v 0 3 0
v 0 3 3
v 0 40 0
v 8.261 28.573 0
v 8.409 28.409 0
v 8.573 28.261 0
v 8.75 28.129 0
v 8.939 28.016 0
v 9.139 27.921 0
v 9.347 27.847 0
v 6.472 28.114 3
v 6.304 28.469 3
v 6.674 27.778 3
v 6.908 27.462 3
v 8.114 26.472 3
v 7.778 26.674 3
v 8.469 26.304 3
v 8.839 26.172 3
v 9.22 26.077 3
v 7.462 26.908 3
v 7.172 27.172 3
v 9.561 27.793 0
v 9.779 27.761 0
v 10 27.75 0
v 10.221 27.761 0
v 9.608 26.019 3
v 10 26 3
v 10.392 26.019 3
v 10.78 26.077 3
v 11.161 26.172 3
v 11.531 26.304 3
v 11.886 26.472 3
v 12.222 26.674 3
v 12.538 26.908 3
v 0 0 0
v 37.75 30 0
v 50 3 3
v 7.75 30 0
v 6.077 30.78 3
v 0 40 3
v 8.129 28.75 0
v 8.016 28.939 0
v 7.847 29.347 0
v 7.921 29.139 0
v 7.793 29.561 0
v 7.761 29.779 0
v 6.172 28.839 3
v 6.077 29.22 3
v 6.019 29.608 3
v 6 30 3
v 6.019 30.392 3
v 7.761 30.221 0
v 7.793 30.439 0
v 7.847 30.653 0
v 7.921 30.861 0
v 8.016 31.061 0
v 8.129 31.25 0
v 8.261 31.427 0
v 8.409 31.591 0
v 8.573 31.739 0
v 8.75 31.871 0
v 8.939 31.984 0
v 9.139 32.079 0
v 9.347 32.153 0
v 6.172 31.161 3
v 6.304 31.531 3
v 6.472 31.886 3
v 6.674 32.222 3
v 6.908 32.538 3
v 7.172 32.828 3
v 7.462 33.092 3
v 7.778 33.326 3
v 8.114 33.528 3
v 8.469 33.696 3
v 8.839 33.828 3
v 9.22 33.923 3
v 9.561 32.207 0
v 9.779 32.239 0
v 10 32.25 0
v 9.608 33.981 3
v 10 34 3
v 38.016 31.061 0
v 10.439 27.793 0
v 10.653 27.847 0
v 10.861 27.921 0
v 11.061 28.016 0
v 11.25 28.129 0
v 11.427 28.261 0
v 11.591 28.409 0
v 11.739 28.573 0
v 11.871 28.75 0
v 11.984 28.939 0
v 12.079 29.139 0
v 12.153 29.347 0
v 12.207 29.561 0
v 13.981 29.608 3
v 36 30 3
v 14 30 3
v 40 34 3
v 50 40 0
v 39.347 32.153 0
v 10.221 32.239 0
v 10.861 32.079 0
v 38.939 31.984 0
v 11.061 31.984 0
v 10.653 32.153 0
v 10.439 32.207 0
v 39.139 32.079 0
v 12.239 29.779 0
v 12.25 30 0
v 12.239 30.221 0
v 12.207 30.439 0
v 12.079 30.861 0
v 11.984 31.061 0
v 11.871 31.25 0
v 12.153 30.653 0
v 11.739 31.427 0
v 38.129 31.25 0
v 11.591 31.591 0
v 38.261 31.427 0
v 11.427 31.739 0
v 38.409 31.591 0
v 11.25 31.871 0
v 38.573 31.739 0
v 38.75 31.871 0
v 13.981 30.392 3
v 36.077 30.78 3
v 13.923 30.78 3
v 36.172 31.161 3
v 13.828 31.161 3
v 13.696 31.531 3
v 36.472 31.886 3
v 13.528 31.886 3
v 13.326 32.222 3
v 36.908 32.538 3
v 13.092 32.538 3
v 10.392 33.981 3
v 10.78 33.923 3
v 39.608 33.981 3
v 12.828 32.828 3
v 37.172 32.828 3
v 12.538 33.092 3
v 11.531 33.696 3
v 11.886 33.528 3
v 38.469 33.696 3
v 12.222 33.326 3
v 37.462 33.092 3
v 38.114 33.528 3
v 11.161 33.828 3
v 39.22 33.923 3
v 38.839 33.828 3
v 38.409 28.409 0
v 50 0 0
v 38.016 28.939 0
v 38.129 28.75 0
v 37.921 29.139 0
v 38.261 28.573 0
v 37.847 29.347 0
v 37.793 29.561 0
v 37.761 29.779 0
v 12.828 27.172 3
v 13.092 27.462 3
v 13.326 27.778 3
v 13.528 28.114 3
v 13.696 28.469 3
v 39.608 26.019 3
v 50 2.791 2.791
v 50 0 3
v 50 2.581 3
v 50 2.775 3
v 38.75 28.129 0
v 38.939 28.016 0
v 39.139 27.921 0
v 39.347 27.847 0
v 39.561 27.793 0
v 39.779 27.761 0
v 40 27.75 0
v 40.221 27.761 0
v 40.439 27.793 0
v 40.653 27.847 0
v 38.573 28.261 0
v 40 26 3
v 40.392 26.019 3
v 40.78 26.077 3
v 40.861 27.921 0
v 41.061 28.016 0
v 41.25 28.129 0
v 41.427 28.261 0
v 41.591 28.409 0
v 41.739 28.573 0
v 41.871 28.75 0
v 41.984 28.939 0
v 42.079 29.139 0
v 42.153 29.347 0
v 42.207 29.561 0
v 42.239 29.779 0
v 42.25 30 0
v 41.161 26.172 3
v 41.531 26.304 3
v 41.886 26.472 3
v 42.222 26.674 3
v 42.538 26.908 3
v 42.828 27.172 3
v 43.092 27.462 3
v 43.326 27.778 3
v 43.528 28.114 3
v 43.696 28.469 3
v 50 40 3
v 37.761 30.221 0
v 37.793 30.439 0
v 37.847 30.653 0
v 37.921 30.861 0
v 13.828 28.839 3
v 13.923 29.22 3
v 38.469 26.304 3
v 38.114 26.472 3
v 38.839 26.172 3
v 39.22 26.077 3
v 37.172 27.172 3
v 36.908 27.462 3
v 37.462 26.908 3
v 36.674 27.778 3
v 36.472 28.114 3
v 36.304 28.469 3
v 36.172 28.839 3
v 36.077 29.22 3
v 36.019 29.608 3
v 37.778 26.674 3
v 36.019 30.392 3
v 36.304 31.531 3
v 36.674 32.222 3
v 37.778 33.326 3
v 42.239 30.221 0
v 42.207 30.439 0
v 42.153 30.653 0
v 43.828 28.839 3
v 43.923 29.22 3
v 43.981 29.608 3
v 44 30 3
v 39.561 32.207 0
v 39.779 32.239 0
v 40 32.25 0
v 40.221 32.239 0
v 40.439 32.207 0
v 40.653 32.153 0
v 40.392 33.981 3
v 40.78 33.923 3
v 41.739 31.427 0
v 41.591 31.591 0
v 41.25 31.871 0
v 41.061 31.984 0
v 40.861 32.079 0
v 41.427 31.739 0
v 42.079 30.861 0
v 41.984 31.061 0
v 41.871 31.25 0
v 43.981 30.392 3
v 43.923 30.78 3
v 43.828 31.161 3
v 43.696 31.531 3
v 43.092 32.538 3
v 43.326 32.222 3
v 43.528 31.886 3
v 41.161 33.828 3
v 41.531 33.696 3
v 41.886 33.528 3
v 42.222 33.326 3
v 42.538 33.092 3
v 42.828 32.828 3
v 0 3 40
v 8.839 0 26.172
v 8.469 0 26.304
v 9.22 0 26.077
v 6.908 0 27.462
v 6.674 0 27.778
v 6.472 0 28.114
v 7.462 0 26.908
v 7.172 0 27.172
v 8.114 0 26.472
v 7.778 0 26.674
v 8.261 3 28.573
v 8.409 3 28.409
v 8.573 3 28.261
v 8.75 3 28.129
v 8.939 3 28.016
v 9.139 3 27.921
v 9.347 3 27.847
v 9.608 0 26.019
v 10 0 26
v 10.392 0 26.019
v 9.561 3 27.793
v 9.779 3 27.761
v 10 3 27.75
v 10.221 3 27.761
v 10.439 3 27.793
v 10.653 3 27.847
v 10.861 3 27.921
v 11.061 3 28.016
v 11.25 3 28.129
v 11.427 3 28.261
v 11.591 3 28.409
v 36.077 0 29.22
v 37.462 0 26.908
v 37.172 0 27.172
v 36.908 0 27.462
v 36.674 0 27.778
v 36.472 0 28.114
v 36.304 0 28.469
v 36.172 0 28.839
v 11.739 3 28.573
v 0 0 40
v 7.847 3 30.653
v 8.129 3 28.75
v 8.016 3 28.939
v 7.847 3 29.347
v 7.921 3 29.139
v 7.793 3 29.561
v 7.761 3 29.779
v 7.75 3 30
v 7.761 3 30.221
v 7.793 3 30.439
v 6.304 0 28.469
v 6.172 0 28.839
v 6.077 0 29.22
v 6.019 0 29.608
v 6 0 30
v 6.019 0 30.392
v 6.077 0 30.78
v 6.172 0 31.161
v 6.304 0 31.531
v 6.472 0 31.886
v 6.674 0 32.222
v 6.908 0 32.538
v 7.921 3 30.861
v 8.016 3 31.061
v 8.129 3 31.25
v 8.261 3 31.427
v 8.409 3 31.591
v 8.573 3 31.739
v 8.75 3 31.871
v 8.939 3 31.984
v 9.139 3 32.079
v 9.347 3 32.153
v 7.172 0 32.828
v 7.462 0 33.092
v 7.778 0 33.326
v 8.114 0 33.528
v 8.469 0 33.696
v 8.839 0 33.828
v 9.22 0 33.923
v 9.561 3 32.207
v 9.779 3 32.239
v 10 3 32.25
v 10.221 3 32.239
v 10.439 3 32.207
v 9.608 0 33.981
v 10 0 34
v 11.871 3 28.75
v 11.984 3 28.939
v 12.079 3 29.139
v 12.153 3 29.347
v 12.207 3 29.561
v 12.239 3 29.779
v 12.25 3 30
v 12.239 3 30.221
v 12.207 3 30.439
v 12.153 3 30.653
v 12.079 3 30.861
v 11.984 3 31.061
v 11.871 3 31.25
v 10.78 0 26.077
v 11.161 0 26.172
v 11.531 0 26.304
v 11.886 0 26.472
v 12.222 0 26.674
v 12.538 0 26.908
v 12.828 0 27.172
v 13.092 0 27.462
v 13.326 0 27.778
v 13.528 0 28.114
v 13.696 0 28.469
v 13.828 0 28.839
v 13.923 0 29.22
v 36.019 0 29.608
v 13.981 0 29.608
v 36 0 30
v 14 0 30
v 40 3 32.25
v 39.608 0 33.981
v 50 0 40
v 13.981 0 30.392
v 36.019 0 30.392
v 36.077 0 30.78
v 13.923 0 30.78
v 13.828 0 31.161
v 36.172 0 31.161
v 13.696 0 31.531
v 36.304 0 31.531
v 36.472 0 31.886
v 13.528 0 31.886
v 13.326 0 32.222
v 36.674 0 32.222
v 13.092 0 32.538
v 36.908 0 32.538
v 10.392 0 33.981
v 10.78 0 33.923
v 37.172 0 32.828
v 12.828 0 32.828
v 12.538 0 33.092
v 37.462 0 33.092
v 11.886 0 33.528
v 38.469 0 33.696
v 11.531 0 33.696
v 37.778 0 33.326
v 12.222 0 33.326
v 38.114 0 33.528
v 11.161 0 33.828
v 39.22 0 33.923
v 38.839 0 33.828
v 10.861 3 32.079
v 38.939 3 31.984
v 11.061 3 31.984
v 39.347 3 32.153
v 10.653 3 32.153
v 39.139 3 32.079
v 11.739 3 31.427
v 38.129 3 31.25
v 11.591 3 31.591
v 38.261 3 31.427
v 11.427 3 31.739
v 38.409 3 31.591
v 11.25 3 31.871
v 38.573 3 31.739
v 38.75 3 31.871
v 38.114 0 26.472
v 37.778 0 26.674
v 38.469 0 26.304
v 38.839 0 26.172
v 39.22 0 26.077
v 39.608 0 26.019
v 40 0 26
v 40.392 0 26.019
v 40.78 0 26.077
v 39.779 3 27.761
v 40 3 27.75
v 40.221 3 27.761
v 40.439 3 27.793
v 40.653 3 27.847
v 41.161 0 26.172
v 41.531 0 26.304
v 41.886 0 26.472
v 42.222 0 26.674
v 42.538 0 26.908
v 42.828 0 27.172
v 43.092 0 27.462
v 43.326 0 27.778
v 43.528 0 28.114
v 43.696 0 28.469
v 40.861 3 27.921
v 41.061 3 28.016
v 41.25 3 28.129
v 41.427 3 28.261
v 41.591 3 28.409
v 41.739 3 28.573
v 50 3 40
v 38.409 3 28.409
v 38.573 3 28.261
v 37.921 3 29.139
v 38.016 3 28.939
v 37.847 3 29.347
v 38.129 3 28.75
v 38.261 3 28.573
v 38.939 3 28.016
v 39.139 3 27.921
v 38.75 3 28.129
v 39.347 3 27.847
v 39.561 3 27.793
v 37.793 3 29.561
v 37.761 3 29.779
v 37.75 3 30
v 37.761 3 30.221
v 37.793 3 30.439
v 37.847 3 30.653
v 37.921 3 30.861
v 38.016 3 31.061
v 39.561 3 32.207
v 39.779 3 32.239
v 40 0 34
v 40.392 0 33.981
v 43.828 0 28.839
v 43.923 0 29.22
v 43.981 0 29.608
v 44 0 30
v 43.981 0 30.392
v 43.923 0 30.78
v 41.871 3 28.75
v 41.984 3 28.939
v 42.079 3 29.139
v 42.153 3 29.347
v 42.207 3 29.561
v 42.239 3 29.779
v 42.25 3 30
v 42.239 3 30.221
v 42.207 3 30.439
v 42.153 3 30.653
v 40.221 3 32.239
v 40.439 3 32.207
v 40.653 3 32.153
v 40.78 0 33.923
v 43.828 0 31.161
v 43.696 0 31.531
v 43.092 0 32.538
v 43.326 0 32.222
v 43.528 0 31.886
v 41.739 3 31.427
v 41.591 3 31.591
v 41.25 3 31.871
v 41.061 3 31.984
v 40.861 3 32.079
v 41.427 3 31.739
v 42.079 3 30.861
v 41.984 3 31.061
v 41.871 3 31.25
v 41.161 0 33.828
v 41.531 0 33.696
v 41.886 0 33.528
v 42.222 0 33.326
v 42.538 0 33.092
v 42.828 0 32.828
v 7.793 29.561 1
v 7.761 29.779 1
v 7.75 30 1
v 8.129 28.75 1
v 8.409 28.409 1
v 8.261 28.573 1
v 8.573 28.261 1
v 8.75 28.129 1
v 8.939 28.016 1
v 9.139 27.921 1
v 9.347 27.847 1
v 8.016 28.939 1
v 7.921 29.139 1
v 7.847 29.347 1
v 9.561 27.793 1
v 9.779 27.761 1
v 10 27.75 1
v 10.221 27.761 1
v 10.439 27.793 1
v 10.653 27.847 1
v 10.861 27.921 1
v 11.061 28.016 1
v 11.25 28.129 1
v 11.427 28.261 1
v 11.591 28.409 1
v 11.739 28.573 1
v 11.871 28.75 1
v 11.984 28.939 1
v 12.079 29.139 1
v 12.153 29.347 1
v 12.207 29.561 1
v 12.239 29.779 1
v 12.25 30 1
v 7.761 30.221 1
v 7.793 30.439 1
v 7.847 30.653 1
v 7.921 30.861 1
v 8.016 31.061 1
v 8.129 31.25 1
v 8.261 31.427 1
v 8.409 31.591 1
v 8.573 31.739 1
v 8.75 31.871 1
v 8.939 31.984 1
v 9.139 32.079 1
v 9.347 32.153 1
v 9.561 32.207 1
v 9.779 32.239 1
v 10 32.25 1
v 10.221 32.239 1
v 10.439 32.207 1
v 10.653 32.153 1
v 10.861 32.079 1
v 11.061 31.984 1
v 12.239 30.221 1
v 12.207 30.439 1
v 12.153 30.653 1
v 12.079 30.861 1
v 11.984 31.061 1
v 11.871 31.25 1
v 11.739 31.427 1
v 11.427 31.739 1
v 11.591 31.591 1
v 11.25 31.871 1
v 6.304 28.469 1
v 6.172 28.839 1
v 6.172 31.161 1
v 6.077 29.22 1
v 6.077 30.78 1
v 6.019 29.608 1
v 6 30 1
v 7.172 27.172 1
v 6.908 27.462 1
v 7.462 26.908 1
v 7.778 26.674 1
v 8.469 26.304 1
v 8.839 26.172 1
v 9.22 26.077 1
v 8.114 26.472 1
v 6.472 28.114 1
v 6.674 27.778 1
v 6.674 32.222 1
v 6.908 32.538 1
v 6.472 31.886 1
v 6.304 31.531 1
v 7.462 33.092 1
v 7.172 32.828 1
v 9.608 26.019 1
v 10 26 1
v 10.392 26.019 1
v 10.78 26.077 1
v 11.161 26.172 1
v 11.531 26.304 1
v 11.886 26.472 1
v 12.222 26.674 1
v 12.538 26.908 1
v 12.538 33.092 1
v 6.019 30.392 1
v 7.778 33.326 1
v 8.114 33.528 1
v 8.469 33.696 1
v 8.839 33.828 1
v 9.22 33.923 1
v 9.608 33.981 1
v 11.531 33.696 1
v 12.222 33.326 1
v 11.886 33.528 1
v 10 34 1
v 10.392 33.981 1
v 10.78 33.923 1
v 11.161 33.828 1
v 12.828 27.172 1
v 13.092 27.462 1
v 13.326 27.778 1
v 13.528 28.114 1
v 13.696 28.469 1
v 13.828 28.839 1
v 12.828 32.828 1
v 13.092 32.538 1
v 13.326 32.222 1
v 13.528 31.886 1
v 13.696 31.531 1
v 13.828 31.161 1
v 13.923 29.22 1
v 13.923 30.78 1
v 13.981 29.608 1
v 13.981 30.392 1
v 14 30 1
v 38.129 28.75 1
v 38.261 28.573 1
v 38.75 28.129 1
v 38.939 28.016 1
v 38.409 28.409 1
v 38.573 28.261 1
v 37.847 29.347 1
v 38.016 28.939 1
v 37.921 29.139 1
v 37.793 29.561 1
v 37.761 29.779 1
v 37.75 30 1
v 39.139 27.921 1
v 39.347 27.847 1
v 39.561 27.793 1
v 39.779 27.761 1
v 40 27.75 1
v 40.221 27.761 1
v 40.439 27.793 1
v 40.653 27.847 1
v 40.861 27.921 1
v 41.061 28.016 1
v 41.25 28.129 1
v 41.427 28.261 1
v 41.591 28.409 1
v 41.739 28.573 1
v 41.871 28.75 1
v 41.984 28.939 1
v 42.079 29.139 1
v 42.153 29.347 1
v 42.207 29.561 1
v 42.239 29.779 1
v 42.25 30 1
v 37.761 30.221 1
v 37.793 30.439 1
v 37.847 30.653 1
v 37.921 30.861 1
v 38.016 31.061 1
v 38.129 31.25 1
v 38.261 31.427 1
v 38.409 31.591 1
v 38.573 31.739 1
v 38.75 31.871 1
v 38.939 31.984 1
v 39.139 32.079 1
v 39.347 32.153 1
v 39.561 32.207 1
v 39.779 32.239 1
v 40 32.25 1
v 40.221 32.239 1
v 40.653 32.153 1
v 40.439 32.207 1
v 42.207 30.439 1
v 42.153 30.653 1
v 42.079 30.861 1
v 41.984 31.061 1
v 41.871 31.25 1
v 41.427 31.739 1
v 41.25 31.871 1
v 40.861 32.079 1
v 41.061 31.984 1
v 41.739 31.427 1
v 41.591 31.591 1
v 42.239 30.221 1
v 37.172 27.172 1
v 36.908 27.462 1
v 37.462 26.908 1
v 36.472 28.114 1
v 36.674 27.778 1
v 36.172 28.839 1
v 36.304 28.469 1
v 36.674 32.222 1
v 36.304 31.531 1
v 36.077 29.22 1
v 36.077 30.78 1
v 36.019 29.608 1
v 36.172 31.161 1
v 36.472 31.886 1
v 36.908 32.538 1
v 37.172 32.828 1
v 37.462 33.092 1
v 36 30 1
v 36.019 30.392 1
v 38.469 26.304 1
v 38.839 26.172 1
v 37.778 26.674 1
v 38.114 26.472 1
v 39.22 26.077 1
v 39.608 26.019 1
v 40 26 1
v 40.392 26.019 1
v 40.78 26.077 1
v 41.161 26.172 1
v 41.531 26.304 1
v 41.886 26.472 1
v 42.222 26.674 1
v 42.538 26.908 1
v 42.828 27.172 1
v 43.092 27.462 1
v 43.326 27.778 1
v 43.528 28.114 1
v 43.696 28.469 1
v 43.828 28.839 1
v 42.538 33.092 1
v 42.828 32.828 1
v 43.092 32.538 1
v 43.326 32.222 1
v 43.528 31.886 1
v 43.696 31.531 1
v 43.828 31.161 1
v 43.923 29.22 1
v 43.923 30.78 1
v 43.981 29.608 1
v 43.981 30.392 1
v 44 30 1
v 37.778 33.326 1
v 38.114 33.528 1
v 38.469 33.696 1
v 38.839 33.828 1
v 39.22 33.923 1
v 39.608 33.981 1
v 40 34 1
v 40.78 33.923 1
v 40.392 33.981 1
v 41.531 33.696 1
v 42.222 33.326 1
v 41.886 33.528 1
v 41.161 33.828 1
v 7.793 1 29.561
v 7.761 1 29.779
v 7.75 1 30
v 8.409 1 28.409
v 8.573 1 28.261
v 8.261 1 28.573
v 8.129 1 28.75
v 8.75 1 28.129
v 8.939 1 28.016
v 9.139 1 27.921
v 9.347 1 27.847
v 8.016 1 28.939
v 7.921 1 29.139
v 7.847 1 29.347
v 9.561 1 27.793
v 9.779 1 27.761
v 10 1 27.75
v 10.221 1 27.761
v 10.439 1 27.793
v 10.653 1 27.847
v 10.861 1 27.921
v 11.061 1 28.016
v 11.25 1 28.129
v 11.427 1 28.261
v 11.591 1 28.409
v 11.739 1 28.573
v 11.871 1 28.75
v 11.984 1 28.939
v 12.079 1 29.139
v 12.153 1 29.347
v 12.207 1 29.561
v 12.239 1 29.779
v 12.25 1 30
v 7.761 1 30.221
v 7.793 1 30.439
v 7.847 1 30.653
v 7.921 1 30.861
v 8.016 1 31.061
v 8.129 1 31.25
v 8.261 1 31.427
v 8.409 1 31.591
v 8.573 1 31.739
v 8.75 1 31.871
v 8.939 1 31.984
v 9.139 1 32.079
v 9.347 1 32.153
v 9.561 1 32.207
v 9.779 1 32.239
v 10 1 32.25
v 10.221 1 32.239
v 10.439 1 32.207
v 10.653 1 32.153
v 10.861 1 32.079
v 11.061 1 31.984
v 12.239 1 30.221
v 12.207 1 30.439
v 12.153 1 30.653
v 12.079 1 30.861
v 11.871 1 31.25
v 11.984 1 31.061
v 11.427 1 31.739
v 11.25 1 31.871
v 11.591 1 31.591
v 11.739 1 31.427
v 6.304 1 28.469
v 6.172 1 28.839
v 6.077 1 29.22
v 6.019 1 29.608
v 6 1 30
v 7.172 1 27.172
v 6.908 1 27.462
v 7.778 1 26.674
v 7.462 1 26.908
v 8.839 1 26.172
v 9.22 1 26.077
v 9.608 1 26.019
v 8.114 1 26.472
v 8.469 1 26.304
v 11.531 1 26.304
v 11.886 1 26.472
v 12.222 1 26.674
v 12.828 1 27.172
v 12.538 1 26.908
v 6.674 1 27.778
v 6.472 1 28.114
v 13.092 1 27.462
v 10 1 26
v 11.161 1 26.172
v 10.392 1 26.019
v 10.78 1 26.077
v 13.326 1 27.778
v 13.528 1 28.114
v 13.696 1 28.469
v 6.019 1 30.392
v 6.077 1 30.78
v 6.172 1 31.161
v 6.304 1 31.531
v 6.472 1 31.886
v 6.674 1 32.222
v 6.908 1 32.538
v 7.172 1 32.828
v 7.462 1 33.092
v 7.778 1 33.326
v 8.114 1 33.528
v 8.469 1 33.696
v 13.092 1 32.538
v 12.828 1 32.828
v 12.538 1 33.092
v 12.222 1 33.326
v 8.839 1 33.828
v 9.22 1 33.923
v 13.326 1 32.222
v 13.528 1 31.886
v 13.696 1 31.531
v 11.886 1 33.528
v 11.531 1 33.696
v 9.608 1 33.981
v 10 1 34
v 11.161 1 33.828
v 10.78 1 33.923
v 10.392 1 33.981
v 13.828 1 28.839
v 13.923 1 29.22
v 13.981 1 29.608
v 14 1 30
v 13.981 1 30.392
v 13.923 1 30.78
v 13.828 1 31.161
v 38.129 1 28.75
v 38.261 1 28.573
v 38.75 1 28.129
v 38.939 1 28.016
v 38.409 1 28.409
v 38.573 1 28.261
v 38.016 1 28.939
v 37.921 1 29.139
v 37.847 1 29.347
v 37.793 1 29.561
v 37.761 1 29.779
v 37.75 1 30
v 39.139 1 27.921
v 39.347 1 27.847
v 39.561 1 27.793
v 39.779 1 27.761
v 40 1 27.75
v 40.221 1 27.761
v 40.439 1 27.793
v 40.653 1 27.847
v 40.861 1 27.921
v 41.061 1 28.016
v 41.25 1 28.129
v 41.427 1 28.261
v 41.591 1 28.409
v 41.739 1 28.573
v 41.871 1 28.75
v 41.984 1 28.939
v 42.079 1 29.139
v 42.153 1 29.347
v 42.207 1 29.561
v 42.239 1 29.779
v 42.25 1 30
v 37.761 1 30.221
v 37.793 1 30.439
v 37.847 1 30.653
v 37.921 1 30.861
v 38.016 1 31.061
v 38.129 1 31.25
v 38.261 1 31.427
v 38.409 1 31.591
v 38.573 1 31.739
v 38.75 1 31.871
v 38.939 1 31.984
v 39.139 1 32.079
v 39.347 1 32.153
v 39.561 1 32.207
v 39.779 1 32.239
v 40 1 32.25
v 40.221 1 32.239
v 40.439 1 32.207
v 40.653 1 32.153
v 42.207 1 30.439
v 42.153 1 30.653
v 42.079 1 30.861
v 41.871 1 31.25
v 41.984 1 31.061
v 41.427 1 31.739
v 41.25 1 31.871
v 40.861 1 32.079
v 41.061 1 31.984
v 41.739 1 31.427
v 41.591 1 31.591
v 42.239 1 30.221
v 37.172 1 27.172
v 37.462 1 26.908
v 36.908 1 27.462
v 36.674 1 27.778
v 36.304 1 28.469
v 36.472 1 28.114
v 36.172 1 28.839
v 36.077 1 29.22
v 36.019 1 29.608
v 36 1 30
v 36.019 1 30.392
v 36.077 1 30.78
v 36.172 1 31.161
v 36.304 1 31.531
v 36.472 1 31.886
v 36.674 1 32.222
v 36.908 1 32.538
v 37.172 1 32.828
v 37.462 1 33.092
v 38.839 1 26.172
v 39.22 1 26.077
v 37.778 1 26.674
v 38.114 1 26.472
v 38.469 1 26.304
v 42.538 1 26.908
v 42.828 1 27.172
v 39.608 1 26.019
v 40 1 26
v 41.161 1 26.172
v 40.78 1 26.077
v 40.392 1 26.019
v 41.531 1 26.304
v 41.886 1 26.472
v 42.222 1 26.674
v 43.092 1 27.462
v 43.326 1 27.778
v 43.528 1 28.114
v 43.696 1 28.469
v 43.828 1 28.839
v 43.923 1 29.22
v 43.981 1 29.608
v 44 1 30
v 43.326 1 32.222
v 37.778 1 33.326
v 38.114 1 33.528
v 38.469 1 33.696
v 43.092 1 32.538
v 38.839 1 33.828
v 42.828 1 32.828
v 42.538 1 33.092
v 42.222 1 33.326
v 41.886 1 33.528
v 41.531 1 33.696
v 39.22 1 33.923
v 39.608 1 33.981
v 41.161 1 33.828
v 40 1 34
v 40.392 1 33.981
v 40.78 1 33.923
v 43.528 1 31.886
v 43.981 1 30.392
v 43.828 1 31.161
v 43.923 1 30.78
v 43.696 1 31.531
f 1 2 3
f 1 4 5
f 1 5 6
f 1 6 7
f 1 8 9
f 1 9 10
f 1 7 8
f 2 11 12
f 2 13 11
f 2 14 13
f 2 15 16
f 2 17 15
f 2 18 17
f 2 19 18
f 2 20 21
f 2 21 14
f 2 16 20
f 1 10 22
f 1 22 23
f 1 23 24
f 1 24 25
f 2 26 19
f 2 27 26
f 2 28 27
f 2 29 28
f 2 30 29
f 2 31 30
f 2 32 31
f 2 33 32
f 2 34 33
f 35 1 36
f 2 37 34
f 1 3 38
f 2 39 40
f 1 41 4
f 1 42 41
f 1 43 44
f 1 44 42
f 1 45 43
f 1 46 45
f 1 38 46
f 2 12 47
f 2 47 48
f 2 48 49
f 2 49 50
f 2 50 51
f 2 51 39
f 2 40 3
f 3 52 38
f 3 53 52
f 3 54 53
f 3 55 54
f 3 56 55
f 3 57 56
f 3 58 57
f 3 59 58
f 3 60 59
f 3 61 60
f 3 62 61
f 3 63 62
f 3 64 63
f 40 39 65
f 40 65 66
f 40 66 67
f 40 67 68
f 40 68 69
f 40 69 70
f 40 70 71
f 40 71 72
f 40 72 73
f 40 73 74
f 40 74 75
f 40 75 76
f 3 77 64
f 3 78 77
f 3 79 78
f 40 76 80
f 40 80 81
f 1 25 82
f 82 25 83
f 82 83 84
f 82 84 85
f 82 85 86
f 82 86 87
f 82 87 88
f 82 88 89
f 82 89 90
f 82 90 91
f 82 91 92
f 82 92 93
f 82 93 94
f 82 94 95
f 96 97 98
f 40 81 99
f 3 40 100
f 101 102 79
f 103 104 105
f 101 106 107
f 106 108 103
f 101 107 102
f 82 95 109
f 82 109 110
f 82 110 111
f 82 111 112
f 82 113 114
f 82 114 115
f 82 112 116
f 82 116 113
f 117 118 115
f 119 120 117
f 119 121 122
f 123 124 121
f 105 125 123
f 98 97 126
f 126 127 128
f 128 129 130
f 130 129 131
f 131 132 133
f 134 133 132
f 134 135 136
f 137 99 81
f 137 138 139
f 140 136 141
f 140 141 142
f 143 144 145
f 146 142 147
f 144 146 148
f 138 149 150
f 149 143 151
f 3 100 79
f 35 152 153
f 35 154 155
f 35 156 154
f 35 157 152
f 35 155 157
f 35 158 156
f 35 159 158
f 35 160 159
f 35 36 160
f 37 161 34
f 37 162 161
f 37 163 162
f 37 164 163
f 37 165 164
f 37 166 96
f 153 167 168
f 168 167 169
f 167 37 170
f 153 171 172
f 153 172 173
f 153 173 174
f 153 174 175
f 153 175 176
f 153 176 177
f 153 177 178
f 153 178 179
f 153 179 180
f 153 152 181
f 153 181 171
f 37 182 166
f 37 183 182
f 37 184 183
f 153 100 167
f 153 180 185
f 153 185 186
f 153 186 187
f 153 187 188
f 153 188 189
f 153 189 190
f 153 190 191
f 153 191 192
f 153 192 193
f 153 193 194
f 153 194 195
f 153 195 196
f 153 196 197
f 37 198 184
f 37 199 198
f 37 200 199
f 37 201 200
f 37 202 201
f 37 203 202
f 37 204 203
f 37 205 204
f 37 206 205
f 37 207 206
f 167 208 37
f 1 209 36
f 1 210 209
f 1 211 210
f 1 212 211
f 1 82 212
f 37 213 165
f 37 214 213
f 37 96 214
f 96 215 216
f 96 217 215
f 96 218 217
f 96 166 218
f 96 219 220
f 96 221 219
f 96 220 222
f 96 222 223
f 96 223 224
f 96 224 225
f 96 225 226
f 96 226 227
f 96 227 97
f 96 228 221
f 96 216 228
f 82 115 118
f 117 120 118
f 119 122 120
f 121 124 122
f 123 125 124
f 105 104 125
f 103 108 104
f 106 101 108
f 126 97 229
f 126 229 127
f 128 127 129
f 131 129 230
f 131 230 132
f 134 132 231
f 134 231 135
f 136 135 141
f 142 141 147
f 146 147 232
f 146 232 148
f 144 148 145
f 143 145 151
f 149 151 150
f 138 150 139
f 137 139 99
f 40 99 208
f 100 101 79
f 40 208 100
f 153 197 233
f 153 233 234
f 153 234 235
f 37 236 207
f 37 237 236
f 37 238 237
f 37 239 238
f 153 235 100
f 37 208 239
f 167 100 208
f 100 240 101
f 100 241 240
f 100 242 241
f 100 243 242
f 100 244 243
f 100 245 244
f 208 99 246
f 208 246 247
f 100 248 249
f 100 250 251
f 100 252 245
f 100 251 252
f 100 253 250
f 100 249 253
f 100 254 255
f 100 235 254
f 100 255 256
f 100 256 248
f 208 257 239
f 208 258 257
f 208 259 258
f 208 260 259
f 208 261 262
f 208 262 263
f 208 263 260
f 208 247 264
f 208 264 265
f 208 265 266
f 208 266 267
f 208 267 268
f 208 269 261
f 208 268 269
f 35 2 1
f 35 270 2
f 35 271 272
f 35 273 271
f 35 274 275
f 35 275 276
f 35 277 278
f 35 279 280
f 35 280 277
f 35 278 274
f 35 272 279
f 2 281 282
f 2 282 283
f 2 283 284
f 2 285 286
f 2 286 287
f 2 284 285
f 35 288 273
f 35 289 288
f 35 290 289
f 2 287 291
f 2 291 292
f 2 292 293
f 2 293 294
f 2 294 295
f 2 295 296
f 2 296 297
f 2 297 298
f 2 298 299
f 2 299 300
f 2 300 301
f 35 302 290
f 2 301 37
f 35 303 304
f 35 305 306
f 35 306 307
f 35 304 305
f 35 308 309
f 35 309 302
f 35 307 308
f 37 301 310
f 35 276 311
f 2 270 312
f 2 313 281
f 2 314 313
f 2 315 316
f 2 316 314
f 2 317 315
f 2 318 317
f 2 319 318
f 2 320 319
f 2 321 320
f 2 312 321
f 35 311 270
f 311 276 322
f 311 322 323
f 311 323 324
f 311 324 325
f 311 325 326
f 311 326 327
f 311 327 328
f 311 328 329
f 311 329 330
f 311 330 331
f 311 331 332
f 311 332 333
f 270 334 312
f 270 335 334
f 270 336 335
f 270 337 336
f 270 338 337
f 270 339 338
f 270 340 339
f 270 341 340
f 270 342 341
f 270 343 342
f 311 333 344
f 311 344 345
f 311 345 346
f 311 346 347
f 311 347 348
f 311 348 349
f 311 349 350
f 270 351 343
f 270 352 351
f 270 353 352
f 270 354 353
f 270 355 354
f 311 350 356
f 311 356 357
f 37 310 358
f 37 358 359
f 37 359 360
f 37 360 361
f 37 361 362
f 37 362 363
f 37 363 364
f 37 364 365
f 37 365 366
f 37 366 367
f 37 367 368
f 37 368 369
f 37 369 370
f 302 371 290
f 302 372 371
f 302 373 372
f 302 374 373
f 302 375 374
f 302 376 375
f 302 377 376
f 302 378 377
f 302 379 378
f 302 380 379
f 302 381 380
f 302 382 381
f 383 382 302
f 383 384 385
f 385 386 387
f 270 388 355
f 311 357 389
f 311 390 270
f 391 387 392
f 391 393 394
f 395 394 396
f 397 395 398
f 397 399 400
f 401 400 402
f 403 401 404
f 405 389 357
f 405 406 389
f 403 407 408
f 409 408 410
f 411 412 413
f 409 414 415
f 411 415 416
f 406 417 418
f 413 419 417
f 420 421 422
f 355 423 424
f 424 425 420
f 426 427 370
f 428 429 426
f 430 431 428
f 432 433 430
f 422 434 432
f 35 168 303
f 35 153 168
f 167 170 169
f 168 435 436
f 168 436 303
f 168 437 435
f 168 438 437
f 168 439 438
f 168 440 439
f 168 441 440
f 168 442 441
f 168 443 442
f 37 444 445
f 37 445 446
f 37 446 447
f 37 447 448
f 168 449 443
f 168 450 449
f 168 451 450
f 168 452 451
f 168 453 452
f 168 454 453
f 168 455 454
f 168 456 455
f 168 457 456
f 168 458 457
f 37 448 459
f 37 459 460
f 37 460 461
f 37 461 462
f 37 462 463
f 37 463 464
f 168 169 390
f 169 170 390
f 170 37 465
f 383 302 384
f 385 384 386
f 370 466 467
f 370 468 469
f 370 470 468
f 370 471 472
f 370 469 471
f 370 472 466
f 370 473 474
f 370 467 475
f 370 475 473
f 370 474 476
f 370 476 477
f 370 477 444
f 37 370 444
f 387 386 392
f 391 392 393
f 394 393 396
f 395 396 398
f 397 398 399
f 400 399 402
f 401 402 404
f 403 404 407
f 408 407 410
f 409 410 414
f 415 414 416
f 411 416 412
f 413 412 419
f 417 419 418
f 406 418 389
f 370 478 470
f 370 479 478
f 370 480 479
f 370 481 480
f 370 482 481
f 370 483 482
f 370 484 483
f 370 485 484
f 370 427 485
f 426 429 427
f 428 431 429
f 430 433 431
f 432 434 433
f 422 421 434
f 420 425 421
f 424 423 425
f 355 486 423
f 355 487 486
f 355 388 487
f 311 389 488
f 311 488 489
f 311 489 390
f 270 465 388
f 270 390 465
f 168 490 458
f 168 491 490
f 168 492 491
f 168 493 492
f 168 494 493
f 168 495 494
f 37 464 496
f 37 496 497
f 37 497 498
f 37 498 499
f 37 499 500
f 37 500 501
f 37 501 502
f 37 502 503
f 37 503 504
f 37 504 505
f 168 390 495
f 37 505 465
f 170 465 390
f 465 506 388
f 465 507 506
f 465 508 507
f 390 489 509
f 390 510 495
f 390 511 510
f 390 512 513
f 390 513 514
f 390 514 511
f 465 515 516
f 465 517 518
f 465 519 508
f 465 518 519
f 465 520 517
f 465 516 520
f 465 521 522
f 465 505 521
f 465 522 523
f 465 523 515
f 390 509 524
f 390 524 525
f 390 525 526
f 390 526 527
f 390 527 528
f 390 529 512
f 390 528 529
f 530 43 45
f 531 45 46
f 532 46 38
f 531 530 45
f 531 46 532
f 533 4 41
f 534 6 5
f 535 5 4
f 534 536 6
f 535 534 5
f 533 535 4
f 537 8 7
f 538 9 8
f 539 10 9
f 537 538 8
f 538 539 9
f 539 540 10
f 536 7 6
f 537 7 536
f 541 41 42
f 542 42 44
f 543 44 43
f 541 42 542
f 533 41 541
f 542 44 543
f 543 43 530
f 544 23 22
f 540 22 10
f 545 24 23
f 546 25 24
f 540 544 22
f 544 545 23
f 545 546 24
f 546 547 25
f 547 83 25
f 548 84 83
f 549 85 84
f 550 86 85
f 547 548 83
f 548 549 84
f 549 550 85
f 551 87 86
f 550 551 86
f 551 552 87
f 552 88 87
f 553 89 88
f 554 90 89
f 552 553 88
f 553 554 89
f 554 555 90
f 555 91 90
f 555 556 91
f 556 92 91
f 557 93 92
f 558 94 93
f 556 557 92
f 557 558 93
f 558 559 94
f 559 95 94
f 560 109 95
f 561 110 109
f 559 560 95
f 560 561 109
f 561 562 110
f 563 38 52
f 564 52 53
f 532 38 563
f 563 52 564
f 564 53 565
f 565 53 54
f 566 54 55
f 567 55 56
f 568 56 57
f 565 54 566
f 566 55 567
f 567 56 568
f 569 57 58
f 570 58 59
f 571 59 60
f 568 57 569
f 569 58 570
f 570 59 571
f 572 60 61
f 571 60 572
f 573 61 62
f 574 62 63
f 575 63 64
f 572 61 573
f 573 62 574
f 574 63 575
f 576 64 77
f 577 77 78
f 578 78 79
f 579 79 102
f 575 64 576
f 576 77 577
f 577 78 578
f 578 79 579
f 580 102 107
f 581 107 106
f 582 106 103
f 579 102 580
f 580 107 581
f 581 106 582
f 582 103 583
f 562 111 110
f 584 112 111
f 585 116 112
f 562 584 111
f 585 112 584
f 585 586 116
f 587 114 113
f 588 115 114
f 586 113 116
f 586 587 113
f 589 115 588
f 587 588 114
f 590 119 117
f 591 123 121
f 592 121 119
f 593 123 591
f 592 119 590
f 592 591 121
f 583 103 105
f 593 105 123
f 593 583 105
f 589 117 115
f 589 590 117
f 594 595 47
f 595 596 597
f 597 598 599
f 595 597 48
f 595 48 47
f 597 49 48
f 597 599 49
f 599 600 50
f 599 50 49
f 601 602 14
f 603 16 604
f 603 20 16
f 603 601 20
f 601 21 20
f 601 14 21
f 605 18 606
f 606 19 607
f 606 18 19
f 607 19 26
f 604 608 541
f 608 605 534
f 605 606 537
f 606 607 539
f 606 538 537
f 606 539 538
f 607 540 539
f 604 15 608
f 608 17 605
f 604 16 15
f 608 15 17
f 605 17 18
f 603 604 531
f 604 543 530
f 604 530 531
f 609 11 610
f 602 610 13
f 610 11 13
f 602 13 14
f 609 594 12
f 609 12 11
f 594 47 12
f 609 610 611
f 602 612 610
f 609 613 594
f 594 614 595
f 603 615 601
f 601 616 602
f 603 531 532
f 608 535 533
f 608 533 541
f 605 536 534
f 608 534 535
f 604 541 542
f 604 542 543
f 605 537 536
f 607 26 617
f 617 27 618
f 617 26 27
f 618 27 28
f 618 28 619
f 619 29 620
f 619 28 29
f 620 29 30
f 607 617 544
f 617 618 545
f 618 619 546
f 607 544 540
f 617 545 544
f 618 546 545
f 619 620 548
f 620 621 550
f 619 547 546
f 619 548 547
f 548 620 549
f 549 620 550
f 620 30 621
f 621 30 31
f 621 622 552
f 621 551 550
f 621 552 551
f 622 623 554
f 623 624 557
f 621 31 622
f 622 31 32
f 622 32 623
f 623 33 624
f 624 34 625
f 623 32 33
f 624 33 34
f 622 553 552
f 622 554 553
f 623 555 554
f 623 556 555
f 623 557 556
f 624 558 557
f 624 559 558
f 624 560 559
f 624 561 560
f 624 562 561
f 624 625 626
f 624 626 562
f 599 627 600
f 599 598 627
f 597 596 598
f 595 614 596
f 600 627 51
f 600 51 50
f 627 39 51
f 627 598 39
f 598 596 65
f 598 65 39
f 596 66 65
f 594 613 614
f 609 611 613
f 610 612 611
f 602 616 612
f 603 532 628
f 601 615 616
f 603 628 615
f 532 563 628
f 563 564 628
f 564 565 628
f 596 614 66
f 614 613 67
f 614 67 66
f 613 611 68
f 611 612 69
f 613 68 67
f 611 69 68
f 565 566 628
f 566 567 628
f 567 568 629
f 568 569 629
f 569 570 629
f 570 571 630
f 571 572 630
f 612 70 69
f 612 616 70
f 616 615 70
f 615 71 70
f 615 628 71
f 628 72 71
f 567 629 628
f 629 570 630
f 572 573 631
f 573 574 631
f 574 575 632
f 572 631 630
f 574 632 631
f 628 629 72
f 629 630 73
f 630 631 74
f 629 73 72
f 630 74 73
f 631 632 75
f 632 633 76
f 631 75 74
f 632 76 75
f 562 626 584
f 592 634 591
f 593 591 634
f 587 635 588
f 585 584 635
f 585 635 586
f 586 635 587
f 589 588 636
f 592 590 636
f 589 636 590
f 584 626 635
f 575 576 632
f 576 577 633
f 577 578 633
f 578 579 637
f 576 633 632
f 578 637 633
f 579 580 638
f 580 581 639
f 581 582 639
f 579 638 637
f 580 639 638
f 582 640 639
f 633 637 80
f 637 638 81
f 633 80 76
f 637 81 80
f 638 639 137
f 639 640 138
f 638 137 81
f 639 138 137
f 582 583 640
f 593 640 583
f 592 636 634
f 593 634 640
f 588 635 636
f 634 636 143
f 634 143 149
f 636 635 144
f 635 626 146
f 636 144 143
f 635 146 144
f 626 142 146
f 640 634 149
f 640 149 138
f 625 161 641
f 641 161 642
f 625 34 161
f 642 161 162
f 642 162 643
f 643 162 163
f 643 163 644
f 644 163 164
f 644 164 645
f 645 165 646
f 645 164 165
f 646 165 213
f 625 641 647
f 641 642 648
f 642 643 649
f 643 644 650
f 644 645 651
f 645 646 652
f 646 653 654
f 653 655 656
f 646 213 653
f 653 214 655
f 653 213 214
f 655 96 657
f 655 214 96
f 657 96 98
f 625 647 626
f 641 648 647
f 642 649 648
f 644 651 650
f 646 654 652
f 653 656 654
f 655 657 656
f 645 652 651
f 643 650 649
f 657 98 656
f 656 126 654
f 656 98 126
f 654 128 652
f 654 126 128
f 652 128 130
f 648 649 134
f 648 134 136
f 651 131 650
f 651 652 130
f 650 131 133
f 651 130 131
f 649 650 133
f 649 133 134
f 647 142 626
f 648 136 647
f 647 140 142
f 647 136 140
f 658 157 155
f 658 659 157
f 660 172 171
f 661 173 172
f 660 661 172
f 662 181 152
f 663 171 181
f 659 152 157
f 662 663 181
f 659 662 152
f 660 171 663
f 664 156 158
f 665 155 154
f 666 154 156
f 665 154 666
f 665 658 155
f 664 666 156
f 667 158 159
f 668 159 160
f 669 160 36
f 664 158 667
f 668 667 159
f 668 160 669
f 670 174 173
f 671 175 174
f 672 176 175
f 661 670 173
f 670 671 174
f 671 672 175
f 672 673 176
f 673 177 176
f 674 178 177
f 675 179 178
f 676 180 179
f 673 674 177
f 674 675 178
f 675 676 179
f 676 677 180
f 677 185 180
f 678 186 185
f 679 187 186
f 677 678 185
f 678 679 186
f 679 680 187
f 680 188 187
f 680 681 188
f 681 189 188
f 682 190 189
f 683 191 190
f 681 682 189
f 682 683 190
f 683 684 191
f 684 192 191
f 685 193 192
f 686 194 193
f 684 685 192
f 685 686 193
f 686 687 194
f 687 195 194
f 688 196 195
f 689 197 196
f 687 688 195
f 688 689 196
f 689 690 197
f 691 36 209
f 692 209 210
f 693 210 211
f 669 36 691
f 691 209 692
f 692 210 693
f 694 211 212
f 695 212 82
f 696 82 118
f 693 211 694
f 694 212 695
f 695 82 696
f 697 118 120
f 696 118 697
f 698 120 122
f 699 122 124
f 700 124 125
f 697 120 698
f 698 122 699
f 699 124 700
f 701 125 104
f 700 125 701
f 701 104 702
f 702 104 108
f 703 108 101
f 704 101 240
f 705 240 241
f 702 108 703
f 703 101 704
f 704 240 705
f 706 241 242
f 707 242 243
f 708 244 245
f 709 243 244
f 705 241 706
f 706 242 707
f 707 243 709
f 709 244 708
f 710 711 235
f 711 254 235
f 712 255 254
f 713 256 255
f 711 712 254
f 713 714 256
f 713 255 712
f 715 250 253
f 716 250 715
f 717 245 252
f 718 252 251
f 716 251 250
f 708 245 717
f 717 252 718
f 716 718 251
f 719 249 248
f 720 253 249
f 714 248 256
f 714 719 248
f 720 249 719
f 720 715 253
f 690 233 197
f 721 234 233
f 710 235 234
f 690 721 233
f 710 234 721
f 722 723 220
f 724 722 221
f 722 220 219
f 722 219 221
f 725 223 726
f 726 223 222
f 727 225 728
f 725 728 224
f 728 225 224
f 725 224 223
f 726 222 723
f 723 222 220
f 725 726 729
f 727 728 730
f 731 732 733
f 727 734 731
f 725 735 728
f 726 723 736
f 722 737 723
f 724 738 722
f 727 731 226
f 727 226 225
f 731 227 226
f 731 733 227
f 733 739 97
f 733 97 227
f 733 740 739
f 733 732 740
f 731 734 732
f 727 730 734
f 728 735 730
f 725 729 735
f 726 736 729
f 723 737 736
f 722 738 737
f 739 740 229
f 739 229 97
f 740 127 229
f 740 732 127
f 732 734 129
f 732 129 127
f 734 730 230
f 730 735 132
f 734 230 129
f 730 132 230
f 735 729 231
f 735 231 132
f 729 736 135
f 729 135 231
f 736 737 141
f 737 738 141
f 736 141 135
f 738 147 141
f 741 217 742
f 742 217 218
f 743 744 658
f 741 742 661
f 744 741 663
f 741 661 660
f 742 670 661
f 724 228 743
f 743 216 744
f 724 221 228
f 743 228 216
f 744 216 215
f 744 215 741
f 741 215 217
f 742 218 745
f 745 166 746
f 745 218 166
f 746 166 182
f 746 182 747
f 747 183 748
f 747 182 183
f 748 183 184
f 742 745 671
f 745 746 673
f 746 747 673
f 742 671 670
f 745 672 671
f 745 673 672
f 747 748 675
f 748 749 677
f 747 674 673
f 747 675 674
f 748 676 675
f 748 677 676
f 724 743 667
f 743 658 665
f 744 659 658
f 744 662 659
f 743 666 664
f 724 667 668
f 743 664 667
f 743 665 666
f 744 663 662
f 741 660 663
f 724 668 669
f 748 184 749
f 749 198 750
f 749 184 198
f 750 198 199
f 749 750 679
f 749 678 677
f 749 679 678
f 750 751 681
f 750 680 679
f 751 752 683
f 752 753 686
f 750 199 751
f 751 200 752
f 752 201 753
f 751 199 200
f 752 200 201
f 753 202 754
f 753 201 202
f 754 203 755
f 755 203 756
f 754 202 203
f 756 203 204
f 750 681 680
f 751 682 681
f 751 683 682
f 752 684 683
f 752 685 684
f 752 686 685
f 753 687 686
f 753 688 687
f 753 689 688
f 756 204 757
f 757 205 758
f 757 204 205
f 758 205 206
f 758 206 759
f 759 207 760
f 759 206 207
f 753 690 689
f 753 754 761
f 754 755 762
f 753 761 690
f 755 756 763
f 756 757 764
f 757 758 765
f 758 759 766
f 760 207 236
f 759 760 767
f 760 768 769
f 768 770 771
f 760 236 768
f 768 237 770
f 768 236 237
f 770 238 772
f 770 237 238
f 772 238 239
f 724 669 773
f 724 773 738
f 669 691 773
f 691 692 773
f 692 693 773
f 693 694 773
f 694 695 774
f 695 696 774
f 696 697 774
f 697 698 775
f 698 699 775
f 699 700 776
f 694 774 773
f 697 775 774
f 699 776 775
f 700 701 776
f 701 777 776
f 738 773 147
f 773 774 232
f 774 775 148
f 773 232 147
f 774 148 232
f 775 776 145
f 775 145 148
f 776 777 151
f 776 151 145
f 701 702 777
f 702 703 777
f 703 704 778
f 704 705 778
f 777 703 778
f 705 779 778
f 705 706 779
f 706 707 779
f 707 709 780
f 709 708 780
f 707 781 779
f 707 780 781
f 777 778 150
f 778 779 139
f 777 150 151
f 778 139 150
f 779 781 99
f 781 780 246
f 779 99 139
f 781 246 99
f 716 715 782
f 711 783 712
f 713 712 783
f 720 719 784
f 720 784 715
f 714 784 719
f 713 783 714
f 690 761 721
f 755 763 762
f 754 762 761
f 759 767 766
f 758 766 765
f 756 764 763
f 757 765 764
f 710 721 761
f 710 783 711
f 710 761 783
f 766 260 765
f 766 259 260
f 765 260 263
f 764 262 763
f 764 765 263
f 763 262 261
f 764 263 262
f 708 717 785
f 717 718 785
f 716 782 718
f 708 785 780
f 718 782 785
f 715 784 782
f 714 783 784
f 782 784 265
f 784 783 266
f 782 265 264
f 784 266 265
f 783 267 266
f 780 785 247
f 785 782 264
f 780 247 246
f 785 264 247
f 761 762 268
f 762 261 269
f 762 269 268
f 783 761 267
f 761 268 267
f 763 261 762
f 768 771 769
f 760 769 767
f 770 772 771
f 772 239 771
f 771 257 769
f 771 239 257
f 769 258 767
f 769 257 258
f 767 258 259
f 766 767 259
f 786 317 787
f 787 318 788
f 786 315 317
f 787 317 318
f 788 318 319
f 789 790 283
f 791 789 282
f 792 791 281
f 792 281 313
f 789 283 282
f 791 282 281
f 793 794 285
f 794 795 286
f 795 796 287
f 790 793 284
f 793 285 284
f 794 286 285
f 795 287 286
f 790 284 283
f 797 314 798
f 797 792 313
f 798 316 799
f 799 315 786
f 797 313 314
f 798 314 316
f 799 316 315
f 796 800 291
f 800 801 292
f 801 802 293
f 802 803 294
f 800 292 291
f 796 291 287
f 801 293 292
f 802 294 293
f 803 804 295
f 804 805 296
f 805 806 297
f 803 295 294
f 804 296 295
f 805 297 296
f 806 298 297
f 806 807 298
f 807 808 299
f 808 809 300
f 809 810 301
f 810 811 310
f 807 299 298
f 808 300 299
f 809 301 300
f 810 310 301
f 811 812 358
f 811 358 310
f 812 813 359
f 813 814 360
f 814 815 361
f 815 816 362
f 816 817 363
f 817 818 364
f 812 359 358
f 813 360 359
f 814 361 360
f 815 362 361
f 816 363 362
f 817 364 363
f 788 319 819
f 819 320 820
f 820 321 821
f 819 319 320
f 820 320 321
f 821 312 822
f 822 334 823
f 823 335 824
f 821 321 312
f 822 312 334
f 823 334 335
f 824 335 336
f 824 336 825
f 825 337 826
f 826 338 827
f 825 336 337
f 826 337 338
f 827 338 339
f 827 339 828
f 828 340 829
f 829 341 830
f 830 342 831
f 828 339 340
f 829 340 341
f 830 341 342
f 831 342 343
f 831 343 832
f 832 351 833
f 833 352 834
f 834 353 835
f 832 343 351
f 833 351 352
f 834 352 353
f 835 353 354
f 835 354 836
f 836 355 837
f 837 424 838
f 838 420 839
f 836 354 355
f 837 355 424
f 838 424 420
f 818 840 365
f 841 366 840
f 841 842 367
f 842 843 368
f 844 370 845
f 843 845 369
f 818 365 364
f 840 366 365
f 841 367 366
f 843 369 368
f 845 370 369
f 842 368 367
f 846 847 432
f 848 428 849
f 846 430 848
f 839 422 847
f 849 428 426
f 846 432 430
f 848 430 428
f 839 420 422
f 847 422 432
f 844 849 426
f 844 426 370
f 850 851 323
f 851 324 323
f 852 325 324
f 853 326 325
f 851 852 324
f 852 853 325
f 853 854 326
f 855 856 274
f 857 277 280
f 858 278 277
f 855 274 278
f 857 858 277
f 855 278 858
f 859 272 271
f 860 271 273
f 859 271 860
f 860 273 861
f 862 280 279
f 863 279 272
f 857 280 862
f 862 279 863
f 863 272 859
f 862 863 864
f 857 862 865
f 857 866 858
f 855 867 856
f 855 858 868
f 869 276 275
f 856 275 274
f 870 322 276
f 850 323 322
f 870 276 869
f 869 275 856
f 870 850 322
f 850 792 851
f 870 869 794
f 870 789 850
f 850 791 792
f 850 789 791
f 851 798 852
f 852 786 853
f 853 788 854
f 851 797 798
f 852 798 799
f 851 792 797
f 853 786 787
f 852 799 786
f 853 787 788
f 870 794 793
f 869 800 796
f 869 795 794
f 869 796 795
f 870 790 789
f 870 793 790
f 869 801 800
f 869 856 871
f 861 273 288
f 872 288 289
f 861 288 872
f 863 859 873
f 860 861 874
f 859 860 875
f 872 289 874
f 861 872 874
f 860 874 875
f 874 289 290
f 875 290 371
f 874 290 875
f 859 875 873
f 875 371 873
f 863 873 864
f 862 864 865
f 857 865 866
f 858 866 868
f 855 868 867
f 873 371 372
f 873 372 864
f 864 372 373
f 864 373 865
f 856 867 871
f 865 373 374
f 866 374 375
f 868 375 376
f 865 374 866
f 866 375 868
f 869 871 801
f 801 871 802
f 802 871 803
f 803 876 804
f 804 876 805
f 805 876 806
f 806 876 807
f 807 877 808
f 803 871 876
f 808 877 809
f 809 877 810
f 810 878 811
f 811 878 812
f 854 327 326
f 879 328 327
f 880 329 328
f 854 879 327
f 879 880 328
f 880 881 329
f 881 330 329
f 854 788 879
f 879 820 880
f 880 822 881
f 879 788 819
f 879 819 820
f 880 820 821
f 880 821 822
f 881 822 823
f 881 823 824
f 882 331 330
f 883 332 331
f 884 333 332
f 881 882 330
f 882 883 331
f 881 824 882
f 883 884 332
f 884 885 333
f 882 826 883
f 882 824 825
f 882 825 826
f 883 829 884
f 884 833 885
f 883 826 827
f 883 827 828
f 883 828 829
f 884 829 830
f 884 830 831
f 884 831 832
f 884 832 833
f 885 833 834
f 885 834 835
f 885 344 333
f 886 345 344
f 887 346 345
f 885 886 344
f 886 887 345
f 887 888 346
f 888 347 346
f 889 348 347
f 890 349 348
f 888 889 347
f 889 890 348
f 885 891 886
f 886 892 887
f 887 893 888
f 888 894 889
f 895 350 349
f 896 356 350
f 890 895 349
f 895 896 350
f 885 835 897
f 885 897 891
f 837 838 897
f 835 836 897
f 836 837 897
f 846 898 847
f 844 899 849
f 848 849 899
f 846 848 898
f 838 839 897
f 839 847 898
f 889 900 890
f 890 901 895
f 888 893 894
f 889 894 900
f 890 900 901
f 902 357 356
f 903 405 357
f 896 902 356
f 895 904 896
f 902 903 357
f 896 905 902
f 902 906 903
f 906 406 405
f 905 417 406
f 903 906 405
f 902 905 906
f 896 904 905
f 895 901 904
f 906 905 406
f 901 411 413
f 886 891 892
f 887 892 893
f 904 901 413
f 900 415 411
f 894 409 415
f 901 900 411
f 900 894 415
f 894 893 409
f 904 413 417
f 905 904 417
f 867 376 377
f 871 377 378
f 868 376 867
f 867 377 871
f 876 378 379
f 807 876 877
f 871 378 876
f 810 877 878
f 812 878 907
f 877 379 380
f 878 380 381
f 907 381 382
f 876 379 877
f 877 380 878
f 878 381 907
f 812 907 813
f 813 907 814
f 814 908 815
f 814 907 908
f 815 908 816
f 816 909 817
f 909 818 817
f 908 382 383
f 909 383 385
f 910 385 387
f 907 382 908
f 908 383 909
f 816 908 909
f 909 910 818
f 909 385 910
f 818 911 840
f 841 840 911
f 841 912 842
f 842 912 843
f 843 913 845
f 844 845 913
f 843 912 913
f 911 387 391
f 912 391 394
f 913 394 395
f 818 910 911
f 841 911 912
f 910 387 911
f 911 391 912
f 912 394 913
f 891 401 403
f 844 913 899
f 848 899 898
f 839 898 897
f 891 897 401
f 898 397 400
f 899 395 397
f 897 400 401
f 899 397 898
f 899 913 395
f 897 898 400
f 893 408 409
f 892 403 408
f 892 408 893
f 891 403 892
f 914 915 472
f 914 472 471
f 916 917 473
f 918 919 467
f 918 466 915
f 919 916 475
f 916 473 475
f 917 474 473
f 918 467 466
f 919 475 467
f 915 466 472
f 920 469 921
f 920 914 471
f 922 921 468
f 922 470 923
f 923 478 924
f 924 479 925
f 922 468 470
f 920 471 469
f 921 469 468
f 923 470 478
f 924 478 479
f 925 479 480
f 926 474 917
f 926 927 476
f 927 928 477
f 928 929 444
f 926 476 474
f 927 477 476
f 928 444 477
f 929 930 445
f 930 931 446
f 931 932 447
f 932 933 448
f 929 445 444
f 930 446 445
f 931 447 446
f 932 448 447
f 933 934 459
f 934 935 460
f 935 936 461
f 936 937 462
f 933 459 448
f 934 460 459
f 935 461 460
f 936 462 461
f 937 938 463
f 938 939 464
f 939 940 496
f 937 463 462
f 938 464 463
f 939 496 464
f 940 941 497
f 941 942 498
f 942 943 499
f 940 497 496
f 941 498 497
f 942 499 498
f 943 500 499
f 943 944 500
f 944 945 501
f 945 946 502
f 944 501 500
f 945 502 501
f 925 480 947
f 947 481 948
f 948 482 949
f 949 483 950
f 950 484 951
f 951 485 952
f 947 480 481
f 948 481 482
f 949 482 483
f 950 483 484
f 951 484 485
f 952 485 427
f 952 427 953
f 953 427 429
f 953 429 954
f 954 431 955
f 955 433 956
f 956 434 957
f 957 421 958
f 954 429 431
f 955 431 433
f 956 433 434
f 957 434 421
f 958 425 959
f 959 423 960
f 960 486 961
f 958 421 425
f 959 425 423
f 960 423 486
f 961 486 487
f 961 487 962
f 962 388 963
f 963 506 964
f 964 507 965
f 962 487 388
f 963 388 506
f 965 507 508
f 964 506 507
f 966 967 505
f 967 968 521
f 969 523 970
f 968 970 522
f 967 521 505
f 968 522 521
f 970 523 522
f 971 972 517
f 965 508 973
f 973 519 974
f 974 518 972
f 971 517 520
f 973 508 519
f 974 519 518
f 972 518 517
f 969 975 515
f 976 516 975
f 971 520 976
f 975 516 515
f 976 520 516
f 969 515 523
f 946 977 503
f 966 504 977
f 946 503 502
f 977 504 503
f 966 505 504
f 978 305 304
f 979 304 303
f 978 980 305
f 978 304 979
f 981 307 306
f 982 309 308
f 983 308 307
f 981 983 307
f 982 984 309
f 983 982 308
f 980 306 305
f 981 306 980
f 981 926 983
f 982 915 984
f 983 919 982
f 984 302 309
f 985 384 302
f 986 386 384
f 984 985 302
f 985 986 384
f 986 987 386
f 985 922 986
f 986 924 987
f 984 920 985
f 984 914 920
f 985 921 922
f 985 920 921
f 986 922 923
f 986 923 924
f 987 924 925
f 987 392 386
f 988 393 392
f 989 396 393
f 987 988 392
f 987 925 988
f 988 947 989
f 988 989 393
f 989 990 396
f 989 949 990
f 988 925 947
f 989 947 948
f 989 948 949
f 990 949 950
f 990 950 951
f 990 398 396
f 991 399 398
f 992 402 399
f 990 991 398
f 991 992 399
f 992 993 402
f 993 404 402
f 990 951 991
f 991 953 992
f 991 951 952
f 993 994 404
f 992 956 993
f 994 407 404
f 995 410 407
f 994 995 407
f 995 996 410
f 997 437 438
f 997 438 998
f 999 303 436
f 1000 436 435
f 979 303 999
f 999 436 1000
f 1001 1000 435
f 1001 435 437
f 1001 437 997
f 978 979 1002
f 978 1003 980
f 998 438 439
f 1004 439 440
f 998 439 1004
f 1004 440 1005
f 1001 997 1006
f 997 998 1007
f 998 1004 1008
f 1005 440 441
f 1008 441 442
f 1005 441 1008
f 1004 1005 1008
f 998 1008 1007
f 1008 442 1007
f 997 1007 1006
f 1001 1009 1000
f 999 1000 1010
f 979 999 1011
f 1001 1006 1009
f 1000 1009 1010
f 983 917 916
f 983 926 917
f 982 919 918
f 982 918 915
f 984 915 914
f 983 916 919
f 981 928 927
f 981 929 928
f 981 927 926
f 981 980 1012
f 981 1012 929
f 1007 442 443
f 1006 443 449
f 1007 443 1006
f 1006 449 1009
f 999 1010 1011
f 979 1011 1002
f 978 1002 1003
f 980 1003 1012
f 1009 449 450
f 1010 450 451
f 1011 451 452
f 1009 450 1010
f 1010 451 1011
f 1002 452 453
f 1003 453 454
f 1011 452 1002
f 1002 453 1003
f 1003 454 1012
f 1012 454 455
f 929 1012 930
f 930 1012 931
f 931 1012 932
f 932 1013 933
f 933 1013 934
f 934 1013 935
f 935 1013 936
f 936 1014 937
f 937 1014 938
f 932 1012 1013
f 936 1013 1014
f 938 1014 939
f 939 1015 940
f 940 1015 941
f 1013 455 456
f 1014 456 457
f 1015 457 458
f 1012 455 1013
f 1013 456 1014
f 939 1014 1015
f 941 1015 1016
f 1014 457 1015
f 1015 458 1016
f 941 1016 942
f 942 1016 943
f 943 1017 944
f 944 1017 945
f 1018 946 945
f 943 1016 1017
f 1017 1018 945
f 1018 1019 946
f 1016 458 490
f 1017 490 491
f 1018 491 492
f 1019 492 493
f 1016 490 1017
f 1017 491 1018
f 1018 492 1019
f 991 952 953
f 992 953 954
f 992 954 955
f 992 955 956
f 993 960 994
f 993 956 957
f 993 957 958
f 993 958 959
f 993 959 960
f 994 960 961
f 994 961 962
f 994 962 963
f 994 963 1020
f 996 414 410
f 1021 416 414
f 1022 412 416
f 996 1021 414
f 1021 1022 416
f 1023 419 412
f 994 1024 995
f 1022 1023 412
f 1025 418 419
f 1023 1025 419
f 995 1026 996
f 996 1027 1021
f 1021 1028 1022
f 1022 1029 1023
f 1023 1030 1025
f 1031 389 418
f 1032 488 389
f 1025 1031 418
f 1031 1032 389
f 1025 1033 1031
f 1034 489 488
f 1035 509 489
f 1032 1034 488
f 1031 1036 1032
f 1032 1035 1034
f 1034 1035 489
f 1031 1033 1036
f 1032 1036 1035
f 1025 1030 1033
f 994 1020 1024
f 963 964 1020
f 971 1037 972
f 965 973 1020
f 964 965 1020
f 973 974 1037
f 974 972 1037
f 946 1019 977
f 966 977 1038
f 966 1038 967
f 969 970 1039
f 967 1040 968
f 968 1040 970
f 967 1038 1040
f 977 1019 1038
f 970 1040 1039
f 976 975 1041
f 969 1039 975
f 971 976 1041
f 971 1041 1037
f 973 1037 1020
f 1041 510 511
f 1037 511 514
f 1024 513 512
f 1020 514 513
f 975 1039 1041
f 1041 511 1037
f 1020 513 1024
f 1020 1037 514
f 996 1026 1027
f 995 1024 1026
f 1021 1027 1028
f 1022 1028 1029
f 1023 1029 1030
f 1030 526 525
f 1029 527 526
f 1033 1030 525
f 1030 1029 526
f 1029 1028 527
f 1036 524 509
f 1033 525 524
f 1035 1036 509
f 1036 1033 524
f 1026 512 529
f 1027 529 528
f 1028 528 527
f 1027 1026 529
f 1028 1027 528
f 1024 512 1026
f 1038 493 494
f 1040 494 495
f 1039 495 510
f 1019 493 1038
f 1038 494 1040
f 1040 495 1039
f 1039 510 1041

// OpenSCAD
// L-bracket with counterbored M4 holes
// Dimensions
w = 50;      // width (X)
d = 40;      // depth of horizontal flange (Y)
h = 40;      // height of vertical flange (Z)
t = 3;       // thickness

// Holes
dh = 4.5;    // through hole diameter
ds = 8;      // counterbore diameter
sd = 2;      // counterbore depth
edge_x = 10; // X margin from side edges (left/right)
row = 10;    // distance from outer edge of each face (Y/Z) toward inside

$fn = 64;

difference() {
  // L-bracket body: inner corner at origin, horizontal +Y, vertical +Z
  union() {
    // Horizontal flange: X=w, Y=d, Z=t
    cube([w, d, t], center=false);
    // Vertical flange: X=w, Y=t, Z=h
    cube([w, t, h], center=false);
  }

  // Horizontal flange holes (axis along Z), counterbore from top (+Z)
  // Row located 10 mm from the outer Y edge (y = d - row)
  for (x = [edge_x, w - edge_x]) {
    // Through hole
    translate([x, d - row, -1])
      cylinder(h = t + 2, d = dh);
    // Counterbore from top face
    translate([x, d - row, t - sd])
      cylinder(h = sd, d = ds);
  }

  // Vertical flange holes (axis along Y), counterbore from outside face (+Y)
  // Row located 10 mm from the outer Z edge (z = h - row)
  for (x = [edge_x, w - edge_x]) {
    // Through hole
    translate([x, t/2, h - row])
      rotate([90, 0, 0])
        cylinder(h = t + 6, d = dh, center=true);
    // Counterbore from outside face at Y = +t, depth sd toward -Y
    translate([x, t - sd, h - row])
      rotate([90, 0, 0])
        cylinder(h = sd, d = ds, center=false);
  }
}
